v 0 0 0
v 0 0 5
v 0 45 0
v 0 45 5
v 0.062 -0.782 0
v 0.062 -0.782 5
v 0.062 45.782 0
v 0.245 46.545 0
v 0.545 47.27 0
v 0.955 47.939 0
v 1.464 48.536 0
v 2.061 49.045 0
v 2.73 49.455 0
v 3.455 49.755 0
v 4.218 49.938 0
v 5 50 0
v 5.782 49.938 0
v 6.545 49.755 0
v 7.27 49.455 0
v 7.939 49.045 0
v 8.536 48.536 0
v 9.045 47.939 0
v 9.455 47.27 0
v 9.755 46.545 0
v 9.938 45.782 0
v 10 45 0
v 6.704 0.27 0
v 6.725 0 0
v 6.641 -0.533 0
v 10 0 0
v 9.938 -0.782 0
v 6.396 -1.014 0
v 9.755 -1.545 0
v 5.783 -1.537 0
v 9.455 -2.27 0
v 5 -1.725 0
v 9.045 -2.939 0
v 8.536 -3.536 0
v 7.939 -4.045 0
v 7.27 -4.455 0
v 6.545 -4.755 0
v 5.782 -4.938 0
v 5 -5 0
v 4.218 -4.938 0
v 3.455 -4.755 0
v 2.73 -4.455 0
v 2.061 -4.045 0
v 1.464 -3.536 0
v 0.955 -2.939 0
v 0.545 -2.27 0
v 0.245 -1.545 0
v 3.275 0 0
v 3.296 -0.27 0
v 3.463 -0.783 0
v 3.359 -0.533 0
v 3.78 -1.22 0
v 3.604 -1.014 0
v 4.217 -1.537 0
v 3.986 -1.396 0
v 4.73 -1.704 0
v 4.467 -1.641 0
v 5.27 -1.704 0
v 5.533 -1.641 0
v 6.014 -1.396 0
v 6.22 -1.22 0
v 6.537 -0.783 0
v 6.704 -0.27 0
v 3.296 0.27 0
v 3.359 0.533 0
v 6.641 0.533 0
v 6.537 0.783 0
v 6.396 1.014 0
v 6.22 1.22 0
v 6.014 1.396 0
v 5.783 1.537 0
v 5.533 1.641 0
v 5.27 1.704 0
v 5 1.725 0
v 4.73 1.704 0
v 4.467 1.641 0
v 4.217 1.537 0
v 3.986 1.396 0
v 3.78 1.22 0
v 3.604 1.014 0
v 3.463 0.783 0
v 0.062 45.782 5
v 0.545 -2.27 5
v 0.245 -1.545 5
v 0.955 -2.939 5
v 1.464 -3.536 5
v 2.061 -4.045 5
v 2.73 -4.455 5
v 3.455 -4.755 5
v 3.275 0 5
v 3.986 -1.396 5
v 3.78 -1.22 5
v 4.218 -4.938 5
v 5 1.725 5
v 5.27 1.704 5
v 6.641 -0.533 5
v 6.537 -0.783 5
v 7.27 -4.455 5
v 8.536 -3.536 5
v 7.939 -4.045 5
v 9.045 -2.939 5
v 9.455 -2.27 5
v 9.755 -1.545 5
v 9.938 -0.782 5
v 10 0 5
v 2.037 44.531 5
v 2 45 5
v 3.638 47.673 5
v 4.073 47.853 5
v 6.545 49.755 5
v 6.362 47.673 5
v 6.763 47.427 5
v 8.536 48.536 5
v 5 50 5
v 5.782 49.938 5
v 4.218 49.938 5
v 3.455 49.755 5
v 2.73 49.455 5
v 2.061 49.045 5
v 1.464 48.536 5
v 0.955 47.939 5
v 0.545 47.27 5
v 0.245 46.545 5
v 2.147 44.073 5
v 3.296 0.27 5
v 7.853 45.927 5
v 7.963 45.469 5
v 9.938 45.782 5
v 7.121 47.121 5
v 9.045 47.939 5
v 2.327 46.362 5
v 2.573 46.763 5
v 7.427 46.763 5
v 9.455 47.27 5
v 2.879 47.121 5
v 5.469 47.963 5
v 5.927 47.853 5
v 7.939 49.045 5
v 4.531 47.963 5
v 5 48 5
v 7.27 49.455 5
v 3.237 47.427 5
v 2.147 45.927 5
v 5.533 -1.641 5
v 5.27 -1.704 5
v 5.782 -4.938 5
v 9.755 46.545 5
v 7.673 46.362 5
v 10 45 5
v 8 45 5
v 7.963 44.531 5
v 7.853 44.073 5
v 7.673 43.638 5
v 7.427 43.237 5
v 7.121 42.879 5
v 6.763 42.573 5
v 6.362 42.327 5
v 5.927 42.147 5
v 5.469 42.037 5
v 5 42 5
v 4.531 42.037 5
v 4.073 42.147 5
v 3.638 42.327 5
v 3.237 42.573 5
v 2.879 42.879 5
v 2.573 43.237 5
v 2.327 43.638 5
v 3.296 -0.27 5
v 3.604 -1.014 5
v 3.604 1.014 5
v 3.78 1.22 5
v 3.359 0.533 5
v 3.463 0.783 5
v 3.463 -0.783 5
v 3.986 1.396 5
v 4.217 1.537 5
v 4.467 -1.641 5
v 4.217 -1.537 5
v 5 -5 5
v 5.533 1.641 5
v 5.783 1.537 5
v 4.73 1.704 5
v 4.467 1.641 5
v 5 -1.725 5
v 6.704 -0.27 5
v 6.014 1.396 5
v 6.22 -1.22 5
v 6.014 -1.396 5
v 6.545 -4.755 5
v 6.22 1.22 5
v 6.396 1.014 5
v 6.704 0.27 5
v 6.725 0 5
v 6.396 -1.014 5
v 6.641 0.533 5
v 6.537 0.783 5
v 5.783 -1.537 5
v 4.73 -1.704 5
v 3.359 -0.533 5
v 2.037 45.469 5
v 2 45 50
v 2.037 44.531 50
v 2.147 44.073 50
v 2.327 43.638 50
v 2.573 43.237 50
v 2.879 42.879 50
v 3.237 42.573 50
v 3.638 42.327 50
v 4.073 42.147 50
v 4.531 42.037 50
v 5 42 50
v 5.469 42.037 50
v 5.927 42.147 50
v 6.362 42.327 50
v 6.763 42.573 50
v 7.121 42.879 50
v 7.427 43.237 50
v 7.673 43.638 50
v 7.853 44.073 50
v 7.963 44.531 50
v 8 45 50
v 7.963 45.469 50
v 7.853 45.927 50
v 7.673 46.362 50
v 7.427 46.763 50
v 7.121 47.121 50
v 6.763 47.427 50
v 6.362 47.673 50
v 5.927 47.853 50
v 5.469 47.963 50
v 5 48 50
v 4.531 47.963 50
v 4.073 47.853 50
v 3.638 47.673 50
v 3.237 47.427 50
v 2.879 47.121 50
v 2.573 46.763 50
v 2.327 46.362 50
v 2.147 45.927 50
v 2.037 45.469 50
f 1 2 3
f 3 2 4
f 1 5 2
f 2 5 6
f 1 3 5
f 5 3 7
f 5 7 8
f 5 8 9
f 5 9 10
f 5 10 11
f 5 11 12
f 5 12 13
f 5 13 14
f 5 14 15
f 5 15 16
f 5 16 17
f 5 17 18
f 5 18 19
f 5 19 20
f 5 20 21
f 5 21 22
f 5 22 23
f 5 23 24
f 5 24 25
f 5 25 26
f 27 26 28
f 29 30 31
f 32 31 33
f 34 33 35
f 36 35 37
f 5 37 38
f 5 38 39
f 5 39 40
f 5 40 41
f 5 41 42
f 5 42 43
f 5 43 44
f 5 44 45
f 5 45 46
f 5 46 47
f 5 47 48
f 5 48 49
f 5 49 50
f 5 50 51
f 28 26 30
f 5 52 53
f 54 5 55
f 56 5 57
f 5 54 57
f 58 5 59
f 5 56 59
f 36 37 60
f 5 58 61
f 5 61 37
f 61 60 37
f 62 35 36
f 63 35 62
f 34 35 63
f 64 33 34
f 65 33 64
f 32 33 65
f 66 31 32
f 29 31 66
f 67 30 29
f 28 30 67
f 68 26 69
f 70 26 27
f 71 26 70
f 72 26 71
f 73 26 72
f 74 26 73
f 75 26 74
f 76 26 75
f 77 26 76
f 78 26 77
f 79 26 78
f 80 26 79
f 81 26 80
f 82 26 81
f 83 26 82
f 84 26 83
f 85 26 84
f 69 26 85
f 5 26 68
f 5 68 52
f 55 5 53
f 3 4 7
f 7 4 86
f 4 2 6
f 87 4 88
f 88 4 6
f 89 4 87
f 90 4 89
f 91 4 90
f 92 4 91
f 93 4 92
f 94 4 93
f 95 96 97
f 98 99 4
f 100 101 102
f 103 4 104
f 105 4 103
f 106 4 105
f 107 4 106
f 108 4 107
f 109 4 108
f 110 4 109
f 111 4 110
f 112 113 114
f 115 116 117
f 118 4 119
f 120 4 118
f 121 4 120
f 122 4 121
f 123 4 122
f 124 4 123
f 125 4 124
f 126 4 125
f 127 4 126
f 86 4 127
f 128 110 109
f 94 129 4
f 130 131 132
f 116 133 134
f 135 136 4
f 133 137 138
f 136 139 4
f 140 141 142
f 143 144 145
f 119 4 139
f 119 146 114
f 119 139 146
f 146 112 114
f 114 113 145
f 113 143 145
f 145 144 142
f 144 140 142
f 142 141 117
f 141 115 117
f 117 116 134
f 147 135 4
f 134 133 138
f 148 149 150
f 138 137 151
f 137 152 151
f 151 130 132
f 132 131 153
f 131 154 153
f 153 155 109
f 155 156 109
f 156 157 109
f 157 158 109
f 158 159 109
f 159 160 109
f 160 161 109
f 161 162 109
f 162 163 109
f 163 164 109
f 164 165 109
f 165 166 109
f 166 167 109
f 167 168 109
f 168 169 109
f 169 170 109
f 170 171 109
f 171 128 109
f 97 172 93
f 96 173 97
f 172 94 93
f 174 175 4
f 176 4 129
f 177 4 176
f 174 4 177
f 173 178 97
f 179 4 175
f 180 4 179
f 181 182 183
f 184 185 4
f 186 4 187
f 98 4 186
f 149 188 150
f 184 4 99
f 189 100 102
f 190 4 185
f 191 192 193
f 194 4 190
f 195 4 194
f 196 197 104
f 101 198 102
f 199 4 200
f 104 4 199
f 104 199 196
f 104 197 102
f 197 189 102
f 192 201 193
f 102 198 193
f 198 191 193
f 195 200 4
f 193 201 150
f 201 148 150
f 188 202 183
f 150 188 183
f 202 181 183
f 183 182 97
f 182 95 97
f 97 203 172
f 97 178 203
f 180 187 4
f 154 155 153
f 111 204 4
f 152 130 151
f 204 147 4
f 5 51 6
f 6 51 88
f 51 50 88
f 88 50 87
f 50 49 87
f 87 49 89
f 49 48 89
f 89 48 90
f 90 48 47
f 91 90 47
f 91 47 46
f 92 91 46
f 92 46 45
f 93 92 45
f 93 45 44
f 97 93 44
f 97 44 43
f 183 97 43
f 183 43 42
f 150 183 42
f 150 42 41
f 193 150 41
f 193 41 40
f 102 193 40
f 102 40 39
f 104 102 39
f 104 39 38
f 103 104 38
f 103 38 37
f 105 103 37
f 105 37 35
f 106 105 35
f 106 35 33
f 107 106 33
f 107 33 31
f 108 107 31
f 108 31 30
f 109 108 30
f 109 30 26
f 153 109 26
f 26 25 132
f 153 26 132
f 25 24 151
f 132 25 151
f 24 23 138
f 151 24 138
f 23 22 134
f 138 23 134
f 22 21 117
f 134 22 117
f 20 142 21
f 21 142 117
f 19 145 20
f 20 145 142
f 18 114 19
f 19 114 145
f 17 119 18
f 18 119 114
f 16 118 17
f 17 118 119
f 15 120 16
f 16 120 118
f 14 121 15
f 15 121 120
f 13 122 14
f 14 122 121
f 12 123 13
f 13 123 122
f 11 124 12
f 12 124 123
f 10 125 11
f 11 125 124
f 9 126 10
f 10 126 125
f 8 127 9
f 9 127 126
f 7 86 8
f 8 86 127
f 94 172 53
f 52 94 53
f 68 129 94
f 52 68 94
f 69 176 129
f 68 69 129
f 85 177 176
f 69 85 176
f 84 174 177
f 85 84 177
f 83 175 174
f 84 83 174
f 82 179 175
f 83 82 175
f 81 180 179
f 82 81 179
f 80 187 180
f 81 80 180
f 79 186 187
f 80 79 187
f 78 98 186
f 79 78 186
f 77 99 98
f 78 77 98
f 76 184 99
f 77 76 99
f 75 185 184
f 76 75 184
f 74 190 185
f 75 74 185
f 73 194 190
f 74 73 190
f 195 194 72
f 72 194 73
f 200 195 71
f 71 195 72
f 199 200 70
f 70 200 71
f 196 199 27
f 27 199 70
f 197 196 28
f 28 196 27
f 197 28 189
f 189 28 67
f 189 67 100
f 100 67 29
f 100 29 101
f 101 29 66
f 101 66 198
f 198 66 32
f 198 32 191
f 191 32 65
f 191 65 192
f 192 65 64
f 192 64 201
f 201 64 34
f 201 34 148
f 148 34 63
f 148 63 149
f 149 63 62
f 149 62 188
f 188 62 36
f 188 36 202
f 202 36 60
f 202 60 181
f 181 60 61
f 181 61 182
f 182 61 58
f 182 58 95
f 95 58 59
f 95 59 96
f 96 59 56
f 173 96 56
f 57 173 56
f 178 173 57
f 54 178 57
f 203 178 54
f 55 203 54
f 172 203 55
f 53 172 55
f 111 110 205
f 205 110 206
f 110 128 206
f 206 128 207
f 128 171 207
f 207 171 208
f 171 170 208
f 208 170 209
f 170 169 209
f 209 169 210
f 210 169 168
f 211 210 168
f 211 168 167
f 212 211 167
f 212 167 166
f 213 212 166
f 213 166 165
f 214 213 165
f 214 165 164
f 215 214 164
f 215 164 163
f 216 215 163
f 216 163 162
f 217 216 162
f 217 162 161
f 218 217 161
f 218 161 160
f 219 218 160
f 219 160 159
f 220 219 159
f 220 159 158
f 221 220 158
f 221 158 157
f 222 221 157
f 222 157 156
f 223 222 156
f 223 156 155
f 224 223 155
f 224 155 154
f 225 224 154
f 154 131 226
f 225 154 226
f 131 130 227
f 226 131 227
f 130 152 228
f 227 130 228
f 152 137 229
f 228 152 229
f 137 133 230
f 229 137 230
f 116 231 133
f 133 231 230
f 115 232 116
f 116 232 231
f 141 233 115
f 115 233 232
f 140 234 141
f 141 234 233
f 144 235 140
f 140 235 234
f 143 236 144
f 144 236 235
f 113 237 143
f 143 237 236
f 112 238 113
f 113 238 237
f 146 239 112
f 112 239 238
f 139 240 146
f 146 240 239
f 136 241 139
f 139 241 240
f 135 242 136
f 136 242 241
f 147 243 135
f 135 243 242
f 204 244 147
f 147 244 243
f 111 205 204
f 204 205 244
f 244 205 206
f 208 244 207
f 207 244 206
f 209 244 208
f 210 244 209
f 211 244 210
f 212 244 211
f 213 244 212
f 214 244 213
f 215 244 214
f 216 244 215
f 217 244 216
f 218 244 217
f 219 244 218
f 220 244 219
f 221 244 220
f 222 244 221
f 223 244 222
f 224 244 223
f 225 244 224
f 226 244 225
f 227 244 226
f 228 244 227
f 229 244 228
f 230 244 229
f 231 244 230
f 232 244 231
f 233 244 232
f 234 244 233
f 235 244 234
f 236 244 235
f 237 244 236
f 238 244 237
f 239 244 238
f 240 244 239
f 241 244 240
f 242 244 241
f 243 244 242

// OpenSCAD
// file: configuration.scad
// Increase this if your slicer or printer make holes too tight.
extra_radius = 0.1;

// OD = outside diameter, corner to corner.
m3_nut_od = 6.1;
m3_nut_radius = m3_nut_od/2 + 0.2 + extra_radius;
m3_washer_radius = 3.5 + extra_radius;

// Major diameter of metric 3mm thread.
m3_major = 2.85;
m3_radius = m3_major/2 + extra_radius;
m3_wide_radius = m3_major/2 + extra_radius + 0.2;

// NEMA17 stepper motors.
motor_shaft_diameter = 5;
motor_shaft_radius = motor_shaft_diameter/2 + extra_radius;

// Frame brackets. M3x8mm screws work best with 3.6 mm brackets.
thickness = 3.6;

// OpenBeam or Misumi. Currently only 15x15 mm, but there is a plan
// to make models more parametric and allow 20x20 mm in the future.
extrusion = 15;

// Placement for the NEMA17 stepper motors.
motor_offset = 44;
motor_length = 47;

probe_tunnel_radius = 1.25 + extra_radius;
probe_excentricity = 5;
// main file
include <configuration.scad>;

r_base = 5;             // radius of the tool base (mm)
h_base = 5;             // height of the tool base (mm)
l_tool = 45;            // center-to-center length of the base (mm)
r_tool = 3;             // radius of the tool that sticks up beyond the bed (mm)
h_tool = 45;            // height of the tool above the base (mm)
$fn = 40;

difference() {
  union() {
    cube([2*r_base, l_tool, h_base]);
    translate([r_base, l_tool, 0])      cylinder(r=r_base, h=h_base);
    translate([r_base, 0,      0])      cylinder(r=r_base, h=h_base);
    translate([r_base, l_tool, h_base]) cylinder(r=r_tool, h=h_tool);
  };
  translate([r_base, 0, 0]) cylinder(r=m3_wide_radius, h=h_base);
};
